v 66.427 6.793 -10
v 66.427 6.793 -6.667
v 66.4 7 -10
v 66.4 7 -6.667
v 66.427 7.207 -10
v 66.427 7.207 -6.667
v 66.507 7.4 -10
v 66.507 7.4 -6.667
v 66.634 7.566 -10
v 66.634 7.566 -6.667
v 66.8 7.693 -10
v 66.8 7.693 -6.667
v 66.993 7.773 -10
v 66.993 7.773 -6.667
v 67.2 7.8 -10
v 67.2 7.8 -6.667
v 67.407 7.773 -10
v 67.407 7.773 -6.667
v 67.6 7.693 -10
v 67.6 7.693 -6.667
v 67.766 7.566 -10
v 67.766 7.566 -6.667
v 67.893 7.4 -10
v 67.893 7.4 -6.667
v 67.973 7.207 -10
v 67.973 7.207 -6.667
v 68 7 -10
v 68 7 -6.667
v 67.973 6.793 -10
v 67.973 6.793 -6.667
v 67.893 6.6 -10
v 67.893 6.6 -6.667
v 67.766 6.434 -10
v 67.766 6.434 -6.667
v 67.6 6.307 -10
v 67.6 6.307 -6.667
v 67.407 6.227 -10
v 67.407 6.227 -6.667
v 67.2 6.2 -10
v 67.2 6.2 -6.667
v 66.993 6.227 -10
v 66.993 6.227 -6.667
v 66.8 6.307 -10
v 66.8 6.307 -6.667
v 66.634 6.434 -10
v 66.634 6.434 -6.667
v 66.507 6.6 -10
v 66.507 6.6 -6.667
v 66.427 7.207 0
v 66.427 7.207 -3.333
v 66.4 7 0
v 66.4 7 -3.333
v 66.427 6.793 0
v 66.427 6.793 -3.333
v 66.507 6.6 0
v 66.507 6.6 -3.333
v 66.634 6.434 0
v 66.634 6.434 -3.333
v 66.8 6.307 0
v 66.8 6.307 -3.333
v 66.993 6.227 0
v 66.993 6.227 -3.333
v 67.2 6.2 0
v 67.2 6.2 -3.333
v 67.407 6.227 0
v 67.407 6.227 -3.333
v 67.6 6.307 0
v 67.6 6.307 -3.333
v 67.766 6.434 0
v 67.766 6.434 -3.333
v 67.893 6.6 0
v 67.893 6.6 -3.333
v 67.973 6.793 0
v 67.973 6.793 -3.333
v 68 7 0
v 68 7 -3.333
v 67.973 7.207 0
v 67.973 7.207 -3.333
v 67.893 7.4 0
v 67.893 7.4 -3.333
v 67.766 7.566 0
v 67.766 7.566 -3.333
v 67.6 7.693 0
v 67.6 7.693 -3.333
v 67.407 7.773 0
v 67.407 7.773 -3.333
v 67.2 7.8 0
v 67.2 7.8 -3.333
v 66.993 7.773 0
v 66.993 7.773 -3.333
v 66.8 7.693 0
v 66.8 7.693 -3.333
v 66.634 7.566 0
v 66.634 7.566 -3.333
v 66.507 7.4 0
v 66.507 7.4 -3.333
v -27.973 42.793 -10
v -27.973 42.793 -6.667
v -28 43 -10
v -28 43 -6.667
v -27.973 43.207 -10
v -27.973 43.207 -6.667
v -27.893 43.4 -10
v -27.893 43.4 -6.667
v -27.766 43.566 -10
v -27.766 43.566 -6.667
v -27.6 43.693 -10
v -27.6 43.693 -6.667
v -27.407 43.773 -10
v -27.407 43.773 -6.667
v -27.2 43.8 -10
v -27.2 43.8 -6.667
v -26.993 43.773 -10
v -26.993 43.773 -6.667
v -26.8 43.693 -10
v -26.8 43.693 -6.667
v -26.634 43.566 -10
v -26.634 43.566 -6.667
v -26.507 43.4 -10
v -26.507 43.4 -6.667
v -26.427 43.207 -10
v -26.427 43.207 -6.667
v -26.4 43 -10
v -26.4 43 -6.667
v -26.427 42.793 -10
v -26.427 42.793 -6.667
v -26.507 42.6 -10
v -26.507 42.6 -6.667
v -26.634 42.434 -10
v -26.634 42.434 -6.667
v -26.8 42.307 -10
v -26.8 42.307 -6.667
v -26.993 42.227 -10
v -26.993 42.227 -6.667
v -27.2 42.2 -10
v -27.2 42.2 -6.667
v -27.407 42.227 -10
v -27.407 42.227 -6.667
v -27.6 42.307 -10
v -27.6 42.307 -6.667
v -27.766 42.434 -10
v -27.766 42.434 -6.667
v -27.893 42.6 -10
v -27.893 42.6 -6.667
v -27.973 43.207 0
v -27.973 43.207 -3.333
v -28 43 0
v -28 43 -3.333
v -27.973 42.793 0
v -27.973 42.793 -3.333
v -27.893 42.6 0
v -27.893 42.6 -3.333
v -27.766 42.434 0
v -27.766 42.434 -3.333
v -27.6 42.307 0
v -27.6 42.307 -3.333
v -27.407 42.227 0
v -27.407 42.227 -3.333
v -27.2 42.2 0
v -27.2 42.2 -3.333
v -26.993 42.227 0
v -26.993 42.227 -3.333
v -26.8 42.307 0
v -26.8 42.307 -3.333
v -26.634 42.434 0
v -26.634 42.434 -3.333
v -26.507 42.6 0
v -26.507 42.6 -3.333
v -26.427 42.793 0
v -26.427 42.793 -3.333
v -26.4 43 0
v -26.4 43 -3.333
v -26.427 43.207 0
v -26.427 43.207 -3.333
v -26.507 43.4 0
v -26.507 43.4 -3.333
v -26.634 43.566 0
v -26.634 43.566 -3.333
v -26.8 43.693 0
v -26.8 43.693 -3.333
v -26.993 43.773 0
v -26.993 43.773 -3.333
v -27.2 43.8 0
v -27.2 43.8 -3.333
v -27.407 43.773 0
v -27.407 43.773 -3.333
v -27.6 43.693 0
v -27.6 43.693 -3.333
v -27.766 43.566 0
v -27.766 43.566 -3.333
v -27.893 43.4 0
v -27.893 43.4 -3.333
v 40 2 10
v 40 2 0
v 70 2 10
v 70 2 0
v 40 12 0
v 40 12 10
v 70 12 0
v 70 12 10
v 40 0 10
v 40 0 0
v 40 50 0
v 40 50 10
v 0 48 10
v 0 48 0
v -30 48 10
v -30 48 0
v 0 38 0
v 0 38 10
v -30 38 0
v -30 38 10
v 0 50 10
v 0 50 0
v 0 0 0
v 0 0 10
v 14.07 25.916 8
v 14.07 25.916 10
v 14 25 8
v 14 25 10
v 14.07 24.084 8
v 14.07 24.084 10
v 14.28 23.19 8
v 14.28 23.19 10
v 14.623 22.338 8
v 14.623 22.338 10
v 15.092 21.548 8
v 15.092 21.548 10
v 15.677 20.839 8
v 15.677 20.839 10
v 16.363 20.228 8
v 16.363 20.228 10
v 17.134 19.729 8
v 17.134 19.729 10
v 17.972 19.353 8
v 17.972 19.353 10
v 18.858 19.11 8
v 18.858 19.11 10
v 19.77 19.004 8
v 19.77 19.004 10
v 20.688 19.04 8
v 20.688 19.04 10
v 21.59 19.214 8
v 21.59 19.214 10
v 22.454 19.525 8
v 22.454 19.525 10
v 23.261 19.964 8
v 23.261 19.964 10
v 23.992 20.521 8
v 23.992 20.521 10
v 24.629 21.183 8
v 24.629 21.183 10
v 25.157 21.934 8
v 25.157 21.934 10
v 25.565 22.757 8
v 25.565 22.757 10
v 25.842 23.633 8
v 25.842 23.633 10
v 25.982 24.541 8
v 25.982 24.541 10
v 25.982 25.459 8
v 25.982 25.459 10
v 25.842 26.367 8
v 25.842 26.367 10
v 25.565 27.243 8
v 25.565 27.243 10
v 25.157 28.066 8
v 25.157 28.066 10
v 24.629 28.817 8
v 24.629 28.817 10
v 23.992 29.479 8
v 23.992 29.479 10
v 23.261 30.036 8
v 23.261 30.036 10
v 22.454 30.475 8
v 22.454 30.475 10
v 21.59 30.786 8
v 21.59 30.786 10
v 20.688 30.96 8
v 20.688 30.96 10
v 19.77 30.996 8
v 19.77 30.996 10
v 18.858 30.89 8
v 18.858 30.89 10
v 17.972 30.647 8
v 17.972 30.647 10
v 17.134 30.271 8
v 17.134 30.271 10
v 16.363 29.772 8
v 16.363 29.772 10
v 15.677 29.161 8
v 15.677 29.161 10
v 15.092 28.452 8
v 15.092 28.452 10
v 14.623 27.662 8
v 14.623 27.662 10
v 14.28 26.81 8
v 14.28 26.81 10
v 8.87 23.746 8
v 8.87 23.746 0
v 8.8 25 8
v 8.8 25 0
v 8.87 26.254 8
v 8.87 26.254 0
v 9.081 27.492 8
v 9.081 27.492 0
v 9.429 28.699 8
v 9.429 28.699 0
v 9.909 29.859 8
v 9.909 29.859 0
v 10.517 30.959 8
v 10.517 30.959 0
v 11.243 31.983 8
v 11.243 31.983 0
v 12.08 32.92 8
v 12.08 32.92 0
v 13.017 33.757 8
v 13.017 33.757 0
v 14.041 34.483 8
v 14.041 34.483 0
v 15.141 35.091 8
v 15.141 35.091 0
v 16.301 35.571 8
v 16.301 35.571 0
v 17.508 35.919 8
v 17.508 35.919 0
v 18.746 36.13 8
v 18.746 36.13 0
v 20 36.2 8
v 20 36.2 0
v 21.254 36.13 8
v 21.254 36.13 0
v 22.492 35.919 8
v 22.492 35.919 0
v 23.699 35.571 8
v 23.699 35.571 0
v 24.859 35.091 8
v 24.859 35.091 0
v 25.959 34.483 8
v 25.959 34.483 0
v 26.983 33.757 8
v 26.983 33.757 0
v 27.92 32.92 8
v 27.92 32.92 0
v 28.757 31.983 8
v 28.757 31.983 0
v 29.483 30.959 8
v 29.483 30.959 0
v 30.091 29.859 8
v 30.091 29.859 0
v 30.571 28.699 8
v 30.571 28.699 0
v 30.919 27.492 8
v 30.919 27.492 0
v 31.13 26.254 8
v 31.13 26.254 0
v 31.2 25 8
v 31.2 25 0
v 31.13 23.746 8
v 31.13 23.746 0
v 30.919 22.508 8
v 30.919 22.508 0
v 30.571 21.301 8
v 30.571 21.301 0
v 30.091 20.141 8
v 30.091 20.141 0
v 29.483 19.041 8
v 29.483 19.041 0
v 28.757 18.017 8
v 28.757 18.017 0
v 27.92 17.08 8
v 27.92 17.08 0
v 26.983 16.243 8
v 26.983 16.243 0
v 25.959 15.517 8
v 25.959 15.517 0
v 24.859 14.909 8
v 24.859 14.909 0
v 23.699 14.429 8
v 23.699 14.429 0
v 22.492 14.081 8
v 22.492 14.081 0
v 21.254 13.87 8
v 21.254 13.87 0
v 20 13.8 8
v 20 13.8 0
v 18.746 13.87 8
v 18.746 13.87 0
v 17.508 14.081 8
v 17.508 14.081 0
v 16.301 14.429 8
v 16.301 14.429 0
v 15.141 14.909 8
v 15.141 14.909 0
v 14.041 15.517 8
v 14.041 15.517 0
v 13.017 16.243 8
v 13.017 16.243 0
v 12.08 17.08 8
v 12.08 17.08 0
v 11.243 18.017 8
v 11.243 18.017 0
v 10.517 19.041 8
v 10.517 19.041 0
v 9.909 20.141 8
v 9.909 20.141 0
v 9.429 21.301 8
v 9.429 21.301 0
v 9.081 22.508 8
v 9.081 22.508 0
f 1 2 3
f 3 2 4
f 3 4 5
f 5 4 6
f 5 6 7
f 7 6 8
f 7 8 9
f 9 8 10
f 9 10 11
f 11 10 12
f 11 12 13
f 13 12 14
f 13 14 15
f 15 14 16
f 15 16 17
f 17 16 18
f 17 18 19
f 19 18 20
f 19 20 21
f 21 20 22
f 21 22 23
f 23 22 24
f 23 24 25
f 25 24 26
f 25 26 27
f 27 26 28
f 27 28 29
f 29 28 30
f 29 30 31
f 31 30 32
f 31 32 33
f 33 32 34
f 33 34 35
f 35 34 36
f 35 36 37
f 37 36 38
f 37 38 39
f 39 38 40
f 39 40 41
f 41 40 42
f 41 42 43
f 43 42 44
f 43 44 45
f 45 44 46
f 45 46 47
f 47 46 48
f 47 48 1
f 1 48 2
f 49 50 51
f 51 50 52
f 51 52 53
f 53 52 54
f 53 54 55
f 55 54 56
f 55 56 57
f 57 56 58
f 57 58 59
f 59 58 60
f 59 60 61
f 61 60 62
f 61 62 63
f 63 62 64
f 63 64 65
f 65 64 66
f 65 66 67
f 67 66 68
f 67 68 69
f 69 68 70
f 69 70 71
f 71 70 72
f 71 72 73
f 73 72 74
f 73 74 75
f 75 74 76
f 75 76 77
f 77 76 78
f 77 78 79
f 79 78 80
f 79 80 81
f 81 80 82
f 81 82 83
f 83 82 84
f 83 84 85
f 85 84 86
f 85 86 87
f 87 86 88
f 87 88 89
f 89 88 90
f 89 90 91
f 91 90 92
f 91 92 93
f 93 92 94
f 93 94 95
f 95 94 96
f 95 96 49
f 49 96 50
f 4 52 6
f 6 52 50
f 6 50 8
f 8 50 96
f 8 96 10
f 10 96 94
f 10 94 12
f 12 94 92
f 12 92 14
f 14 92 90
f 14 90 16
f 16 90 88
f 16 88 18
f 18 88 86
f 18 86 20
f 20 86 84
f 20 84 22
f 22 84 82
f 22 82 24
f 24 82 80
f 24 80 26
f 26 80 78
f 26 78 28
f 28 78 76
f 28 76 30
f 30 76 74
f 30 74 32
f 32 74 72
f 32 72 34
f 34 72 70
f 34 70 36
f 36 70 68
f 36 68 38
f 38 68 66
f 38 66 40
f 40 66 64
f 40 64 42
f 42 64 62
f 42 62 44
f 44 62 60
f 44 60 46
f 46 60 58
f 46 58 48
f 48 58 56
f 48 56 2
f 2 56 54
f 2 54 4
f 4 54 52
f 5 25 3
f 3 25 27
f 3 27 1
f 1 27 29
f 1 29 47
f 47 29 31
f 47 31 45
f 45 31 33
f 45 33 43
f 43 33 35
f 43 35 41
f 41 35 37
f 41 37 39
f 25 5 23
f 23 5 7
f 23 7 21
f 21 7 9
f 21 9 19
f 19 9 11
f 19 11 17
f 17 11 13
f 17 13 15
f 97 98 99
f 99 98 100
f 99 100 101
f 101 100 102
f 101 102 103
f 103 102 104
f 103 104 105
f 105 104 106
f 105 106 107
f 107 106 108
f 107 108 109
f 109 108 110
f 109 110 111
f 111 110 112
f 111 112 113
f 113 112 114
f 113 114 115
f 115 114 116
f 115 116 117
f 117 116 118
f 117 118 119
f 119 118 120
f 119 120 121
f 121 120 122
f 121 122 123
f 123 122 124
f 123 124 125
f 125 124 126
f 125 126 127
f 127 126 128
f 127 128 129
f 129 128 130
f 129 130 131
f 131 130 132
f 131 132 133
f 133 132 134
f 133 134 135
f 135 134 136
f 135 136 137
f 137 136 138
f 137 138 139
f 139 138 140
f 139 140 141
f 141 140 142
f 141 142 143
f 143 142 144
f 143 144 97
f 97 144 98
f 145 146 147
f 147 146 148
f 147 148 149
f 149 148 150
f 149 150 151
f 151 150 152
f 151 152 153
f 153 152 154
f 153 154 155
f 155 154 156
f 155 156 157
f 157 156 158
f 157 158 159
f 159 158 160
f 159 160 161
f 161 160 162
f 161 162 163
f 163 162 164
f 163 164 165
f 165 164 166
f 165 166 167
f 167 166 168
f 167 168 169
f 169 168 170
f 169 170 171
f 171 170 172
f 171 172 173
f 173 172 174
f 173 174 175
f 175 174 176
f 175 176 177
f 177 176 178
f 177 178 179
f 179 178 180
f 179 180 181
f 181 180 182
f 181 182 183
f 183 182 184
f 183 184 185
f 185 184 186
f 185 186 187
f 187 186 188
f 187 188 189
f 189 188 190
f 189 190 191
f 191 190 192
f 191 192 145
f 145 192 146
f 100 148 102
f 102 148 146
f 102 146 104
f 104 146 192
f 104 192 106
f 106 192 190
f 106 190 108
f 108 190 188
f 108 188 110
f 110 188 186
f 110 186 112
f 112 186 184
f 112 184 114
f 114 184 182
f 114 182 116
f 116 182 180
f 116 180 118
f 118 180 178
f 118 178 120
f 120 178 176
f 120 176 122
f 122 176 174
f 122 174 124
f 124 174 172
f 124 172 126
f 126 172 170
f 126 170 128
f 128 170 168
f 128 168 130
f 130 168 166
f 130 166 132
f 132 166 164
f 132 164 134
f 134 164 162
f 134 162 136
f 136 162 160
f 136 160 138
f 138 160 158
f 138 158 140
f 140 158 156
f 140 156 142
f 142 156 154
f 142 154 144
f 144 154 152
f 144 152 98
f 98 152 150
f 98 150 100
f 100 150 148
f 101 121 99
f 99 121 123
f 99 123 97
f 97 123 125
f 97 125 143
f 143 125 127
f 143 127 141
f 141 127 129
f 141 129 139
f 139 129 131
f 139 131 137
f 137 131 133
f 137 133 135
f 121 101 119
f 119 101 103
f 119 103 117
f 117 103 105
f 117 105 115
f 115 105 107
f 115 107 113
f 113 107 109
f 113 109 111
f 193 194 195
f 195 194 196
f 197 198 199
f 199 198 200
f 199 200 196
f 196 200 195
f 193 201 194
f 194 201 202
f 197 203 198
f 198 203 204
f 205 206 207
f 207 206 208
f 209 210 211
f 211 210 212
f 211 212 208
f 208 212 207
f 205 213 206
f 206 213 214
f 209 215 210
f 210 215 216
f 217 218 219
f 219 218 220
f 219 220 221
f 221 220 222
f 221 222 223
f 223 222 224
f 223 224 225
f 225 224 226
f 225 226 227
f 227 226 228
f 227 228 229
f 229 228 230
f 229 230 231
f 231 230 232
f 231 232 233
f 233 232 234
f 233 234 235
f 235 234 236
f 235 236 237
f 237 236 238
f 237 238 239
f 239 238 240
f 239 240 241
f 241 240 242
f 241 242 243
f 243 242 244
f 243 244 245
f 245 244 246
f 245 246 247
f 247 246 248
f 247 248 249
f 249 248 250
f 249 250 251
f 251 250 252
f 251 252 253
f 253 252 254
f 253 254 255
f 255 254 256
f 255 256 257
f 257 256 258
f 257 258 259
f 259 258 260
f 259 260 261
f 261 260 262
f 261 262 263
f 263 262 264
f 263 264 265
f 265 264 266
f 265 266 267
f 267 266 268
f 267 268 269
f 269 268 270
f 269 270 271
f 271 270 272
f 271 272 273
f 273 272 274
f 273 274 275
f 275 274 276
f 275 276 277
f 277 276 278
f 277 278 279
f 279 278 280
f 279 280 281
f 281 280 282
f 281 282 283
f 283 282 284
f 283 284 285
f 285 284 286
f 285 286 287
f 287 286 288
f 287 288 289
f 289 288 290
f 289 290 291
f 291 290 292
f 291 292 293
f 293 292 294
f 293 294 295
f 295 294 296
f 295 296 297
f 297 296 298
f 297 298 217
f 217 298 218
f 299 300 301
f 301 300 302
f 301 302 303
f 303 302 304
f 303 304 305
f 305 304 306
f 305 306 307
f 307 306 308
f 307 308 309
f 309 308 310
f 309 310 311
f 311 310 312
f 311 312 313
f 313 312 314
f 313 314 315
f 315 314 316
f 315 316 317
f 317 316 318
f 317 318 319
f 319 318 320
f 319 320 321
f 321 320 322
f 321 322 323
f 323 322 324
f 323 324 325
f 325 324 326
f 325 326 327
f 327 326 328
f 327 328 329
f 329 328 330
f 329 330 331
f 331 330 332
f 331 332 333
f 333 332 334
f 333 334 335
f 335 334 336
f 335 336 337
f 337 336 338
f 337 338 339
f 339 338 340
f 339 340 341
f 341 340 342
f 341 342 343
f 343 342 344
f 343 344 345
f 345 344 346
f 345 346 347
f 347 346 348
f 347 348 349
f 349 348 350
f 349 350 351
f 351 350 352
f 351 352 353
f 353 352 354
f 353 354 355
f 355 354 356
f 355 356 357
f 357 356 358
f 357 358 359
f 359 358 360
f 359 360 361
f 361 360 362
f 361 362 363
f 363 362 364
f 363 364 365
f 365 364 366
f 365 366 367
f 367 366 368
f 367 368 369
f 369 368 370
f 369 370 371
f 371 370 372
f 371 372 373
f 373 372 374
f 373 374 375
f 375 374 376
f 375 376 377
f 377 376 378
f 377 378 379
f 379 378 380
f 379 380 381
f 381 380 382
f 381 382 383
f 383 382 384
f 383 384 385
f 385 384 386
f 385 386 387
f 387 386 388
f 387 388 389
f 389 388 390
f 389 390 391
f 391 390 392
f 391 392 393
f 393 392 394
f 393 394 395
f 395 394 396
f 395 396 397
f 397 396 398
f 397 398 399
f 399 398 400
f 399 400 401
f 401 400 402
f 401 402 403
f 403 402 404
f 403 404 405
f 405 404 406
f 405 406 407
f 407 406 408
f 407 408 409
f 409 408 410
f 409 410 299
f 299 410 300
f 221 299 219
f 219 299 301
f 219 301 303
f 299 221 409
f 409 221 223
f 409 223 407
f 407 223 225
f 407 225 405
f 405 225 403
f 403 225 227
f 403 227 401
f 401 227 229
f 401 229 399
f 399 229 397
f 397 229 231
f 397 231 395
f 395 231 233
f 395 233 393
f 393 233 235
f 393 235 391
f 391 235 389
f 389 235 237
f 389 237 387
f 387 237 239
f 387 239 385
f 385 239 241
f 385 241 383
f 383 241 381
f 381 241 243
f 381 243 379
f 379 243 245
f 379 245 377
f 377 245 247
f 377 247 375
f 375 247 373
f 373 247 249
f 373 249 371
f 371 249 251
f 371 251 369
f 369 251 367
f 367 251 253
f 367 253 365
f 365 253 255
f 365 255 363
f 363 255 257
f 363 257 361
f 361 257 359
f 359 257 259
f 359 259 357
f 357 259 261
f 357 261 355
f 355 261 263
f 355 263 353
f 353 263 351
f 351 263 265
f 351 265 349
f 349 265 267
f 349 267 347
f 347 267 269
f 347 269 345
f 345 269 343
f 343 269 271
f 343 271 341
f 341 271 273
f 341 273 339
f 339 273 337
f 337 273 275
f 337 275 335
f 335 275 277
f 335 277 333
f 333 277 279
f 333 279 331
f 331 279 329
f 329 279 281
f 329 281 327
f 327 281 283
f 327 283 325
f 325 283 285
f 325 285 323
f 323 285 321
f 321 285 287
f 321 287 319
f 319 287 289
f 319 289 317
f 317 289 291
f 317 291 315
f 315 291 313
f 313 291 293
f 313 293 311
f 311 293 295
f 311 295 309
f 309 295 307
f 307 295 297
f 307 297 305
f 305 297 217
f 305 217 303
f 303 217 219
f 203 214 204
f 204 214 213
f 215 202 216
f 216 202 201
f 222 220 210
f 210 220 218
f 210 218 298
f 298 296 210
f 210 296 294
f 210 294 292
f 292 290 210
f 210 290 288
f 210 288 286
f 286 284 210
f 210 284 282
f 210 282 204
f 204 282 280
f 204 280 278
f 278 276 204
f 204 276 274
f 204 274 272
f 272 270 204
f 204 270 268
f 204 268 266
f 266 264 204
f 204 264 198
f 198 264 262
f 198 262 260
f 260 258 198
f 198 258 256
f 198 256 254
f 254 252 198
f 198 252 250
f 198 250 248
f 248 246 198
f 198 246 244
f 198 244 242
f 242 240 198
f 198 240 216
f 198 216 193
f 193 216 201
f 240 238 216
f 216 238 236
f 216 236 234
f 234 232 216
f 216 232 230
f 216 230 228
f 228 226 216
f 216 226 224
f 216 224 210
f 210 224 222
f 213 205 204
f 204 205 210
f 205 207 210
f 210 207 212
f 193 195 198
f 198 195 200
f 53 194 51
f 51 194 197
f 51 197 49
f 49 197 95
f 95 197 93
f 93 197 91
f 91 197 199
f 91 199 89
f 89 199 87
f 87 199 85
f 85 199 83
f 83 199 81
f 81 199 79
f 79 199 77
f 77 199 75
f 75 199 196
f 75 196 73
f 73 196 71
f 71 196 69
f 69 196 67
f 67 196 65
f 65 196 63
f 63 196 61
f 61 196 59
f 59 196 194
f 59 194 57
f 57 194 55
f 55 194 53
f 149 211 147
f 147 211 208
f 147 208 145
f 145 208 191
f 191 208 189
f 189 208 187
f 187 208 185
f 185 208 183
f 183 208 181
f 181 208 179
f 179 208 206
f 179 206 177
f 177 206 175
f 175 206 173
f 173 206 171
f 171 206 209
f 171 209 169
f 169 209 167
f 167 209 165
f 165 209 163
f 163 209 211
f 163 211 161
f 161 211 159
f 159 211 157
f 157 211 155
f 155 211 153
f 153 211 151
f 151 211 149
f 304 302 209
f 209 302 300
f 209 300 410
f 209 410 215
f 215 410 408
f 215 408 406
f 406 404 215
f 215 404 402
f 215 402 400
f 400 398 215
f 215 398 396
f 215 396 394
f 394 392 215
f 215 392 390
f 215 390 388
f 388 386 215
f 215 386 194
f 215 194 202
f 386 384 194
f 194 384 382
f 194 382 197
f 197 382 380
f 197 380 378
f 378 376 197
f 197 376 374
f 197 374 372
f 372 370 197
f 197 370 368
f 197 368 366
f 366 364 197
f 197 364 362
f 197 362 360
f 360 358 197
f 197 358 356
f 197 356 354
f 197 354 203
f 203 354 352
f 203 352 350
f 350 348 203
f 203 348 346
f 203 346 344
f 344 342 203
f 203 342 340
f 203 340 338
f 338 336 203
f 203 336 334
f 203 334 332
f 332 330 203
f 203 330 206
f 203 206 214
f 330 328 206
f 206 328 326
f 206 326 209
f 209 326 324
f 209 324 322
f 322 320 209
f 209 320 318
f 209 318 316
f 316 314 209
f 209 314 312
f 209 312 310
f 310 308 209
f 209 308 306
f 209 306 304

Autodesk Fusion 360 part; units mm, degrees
sketch "Top" plane through (0, 0, 0) normal (0, 0, 1) x (1, 0, 0)
  line L0 (0, 0) -> (40, 0)
  line L1 (40, 0) -> (40, 50)
  line L2 (40, 50) -> (0, 50)
  line L3 (0, 50) -> (0, 0)
  circle A0 centre (20, 25) radius 11.2
  circle A1 centre (20, 25) radius 6
  dimension "d6" = 40
  dimension "d7" = 50
  dimension "d11" = 22.4
  dimension "d12" = 25
  dimension "d13" = 20
  dimension "d27" = 12
extrude "Extrude1" add sketch "Top" along normal blind 10 contours L0 L1 L2 L3 | A0 | A1
extrude "Extrude2" cut sketch "Top" along normal blind 8 contours A0 | A1
extrude "Extrude5" cut sketch "Top" along normal blind 110 contours A1
sketch "Sketch5" plane through (0, 0, 0) normal (-1, 0, 0) x (0, -1, 0)
  line L0 (-50, 0) -> (0, 0)
  line L1 (0, 0) -> (0, 10)
  line L2 (0, 10) -> (-50, 10)
  line L3 (-50, 10) -> (-50, 0)
  line L4 (-48, 10) -> (-38, 10)
  line L5 (-38, 10) -> (-38, 0)
  line L6 (-38, 0) -> (-48, 0)
  line L7 (-48, 0) -> (-48, 10)
  dimension "d50" = 10
  dimension "d51" = 10
  dimension "d52" = 2
extrude "Extrude8" add sketch "Sketch5" along normal blind 30 contours L0 L2 L4 L5 L6 L7
sketch "Sketch8" plane through (40, 0, 0) normal (1, 0, 0) x (0, 1, 0)
  line L0 (0, 0) -> (50, 0)
  line L1 (50, 0) -> (50, 10)
  line L2 (50, 10) -> (0, 10)
  line L3 (0, 10) -> (0, 0)
  line L4 (2, 10) -> (12, 10)
  line L5 (12, 10) -> (12, 0)
  line L6 (12, 0) -> (2, 0)
  line L7 (2, 0) -> (2, 10)
  dimension "d72" = 10
  dimension "d73" = 10
  dimension "d74" = 2
extrude "Extrude11" add sketch "Sketch8" along normal blind 30 contours L0 L2 L4 L5 L6 L7
sketch "Sketch9" plane through (0, 0, 0) normal (0, 0, -1) x (1, 0, 0)
  circle A0 centre (20, -25) radius 11.2
  line L0 (0, -48) -> (0, -50)
  line L1 (0, -50) -> (40, -50)
  line L2 (40, -50) -> (40, -12)
  line L3 (40, -12) -> (70, -12)
  line L4 (70, -12) -> (70, -2)
  line L5 (70, -2) -> (40, -2)
  line L6 (40, -2) -> (40, 0)
  line L7 (40, 0) -> (0, 0)
  line L8 (0, 0) -> (0, -38)
  line L9 (0, -38) -> (-30, -38)
  line L10 (-30, -38) -> (-30, -48)
  line L11 (-30, -48) -> (0, -48)
  circle A1 centre (-27.2, -43) radius 0.8
  circle A2 centre (67.2, -7) radius 0.8
  dimension "d81" = 1.6
  dimension "d82" = 1.6
  dimension "d83" = 2.8
  dimension "d84" = 5
  dimension "d85" = 2.8
  dimension "d86" = 5
extrude "Extrude12" add sketch "Sketch9" along normal blind 10 contours A1 | A2
equation "length = 50 mm"
equation "width = 40 mm"
equation "thickness = 10 mm"
equation "extra = 100 mm"
equation "fit_gap = 0.2 mm"
equation "d6 = width"
equation "d7 = length"
equation "d8 = thickness"
equation "bearing_outer_radius = 11.1 mm"
equation "d11 = ( bearing_outer_radius * 2 ) + fit_gap"
equation "d12 = length / 2"
equation "d13 = width / 2"
equation "d14 = thickness - 2 mm"
equation "bearing_inner_radius = ( 8 mm + 4 mm ) / 2"
equation "d27 = bearing_inner_radius * 2"
equation "d28 = thickness + extra"
equation "rack_rock_bracket_length = 30 mm"
equation "rack_rock_bracket_width = 10 mm"
equation "rack_rock_bracket_big_distance = 2 mm"
equation "d50 = rack_rock_bracket_width"
equation "d51 = rack_rock_bracket_width"
equation "d52 = rack_rock_bracket_big_distance"
equation "d53 = rack_rock_bracket_length"
equation "d72 = rack_rock_bracket_width"
equation "d73 = rack_rock_bracket_width"
equation "d74 = rack_rock_bracket_big_distance"
equation "d75 = rack_rock_bracket_length"
equation "bearing_dowel_radius = 0.8 mm"
equation "bearing_dowel_length = 10 mm"
equation "bearing_dowel_big_distance = 2 mm + bearing_dowel_radius"
equation "bearing_dowel_small_distance = rack_rock_bracket_width / 2"
equation "d81 = bearing_dowel_radius * 2"
equation "d82 = bearing_dowel_radius * 2"
equation "d83 = bearing_dowel_big_distance"
equation "d84 = bearing_dowel_small_distance"
equation "d85 = bearing_dowel_big_distance"
equation "d86 = bearing_dowel_small_distance"
equation "d87 = bearing_dowel_length"
